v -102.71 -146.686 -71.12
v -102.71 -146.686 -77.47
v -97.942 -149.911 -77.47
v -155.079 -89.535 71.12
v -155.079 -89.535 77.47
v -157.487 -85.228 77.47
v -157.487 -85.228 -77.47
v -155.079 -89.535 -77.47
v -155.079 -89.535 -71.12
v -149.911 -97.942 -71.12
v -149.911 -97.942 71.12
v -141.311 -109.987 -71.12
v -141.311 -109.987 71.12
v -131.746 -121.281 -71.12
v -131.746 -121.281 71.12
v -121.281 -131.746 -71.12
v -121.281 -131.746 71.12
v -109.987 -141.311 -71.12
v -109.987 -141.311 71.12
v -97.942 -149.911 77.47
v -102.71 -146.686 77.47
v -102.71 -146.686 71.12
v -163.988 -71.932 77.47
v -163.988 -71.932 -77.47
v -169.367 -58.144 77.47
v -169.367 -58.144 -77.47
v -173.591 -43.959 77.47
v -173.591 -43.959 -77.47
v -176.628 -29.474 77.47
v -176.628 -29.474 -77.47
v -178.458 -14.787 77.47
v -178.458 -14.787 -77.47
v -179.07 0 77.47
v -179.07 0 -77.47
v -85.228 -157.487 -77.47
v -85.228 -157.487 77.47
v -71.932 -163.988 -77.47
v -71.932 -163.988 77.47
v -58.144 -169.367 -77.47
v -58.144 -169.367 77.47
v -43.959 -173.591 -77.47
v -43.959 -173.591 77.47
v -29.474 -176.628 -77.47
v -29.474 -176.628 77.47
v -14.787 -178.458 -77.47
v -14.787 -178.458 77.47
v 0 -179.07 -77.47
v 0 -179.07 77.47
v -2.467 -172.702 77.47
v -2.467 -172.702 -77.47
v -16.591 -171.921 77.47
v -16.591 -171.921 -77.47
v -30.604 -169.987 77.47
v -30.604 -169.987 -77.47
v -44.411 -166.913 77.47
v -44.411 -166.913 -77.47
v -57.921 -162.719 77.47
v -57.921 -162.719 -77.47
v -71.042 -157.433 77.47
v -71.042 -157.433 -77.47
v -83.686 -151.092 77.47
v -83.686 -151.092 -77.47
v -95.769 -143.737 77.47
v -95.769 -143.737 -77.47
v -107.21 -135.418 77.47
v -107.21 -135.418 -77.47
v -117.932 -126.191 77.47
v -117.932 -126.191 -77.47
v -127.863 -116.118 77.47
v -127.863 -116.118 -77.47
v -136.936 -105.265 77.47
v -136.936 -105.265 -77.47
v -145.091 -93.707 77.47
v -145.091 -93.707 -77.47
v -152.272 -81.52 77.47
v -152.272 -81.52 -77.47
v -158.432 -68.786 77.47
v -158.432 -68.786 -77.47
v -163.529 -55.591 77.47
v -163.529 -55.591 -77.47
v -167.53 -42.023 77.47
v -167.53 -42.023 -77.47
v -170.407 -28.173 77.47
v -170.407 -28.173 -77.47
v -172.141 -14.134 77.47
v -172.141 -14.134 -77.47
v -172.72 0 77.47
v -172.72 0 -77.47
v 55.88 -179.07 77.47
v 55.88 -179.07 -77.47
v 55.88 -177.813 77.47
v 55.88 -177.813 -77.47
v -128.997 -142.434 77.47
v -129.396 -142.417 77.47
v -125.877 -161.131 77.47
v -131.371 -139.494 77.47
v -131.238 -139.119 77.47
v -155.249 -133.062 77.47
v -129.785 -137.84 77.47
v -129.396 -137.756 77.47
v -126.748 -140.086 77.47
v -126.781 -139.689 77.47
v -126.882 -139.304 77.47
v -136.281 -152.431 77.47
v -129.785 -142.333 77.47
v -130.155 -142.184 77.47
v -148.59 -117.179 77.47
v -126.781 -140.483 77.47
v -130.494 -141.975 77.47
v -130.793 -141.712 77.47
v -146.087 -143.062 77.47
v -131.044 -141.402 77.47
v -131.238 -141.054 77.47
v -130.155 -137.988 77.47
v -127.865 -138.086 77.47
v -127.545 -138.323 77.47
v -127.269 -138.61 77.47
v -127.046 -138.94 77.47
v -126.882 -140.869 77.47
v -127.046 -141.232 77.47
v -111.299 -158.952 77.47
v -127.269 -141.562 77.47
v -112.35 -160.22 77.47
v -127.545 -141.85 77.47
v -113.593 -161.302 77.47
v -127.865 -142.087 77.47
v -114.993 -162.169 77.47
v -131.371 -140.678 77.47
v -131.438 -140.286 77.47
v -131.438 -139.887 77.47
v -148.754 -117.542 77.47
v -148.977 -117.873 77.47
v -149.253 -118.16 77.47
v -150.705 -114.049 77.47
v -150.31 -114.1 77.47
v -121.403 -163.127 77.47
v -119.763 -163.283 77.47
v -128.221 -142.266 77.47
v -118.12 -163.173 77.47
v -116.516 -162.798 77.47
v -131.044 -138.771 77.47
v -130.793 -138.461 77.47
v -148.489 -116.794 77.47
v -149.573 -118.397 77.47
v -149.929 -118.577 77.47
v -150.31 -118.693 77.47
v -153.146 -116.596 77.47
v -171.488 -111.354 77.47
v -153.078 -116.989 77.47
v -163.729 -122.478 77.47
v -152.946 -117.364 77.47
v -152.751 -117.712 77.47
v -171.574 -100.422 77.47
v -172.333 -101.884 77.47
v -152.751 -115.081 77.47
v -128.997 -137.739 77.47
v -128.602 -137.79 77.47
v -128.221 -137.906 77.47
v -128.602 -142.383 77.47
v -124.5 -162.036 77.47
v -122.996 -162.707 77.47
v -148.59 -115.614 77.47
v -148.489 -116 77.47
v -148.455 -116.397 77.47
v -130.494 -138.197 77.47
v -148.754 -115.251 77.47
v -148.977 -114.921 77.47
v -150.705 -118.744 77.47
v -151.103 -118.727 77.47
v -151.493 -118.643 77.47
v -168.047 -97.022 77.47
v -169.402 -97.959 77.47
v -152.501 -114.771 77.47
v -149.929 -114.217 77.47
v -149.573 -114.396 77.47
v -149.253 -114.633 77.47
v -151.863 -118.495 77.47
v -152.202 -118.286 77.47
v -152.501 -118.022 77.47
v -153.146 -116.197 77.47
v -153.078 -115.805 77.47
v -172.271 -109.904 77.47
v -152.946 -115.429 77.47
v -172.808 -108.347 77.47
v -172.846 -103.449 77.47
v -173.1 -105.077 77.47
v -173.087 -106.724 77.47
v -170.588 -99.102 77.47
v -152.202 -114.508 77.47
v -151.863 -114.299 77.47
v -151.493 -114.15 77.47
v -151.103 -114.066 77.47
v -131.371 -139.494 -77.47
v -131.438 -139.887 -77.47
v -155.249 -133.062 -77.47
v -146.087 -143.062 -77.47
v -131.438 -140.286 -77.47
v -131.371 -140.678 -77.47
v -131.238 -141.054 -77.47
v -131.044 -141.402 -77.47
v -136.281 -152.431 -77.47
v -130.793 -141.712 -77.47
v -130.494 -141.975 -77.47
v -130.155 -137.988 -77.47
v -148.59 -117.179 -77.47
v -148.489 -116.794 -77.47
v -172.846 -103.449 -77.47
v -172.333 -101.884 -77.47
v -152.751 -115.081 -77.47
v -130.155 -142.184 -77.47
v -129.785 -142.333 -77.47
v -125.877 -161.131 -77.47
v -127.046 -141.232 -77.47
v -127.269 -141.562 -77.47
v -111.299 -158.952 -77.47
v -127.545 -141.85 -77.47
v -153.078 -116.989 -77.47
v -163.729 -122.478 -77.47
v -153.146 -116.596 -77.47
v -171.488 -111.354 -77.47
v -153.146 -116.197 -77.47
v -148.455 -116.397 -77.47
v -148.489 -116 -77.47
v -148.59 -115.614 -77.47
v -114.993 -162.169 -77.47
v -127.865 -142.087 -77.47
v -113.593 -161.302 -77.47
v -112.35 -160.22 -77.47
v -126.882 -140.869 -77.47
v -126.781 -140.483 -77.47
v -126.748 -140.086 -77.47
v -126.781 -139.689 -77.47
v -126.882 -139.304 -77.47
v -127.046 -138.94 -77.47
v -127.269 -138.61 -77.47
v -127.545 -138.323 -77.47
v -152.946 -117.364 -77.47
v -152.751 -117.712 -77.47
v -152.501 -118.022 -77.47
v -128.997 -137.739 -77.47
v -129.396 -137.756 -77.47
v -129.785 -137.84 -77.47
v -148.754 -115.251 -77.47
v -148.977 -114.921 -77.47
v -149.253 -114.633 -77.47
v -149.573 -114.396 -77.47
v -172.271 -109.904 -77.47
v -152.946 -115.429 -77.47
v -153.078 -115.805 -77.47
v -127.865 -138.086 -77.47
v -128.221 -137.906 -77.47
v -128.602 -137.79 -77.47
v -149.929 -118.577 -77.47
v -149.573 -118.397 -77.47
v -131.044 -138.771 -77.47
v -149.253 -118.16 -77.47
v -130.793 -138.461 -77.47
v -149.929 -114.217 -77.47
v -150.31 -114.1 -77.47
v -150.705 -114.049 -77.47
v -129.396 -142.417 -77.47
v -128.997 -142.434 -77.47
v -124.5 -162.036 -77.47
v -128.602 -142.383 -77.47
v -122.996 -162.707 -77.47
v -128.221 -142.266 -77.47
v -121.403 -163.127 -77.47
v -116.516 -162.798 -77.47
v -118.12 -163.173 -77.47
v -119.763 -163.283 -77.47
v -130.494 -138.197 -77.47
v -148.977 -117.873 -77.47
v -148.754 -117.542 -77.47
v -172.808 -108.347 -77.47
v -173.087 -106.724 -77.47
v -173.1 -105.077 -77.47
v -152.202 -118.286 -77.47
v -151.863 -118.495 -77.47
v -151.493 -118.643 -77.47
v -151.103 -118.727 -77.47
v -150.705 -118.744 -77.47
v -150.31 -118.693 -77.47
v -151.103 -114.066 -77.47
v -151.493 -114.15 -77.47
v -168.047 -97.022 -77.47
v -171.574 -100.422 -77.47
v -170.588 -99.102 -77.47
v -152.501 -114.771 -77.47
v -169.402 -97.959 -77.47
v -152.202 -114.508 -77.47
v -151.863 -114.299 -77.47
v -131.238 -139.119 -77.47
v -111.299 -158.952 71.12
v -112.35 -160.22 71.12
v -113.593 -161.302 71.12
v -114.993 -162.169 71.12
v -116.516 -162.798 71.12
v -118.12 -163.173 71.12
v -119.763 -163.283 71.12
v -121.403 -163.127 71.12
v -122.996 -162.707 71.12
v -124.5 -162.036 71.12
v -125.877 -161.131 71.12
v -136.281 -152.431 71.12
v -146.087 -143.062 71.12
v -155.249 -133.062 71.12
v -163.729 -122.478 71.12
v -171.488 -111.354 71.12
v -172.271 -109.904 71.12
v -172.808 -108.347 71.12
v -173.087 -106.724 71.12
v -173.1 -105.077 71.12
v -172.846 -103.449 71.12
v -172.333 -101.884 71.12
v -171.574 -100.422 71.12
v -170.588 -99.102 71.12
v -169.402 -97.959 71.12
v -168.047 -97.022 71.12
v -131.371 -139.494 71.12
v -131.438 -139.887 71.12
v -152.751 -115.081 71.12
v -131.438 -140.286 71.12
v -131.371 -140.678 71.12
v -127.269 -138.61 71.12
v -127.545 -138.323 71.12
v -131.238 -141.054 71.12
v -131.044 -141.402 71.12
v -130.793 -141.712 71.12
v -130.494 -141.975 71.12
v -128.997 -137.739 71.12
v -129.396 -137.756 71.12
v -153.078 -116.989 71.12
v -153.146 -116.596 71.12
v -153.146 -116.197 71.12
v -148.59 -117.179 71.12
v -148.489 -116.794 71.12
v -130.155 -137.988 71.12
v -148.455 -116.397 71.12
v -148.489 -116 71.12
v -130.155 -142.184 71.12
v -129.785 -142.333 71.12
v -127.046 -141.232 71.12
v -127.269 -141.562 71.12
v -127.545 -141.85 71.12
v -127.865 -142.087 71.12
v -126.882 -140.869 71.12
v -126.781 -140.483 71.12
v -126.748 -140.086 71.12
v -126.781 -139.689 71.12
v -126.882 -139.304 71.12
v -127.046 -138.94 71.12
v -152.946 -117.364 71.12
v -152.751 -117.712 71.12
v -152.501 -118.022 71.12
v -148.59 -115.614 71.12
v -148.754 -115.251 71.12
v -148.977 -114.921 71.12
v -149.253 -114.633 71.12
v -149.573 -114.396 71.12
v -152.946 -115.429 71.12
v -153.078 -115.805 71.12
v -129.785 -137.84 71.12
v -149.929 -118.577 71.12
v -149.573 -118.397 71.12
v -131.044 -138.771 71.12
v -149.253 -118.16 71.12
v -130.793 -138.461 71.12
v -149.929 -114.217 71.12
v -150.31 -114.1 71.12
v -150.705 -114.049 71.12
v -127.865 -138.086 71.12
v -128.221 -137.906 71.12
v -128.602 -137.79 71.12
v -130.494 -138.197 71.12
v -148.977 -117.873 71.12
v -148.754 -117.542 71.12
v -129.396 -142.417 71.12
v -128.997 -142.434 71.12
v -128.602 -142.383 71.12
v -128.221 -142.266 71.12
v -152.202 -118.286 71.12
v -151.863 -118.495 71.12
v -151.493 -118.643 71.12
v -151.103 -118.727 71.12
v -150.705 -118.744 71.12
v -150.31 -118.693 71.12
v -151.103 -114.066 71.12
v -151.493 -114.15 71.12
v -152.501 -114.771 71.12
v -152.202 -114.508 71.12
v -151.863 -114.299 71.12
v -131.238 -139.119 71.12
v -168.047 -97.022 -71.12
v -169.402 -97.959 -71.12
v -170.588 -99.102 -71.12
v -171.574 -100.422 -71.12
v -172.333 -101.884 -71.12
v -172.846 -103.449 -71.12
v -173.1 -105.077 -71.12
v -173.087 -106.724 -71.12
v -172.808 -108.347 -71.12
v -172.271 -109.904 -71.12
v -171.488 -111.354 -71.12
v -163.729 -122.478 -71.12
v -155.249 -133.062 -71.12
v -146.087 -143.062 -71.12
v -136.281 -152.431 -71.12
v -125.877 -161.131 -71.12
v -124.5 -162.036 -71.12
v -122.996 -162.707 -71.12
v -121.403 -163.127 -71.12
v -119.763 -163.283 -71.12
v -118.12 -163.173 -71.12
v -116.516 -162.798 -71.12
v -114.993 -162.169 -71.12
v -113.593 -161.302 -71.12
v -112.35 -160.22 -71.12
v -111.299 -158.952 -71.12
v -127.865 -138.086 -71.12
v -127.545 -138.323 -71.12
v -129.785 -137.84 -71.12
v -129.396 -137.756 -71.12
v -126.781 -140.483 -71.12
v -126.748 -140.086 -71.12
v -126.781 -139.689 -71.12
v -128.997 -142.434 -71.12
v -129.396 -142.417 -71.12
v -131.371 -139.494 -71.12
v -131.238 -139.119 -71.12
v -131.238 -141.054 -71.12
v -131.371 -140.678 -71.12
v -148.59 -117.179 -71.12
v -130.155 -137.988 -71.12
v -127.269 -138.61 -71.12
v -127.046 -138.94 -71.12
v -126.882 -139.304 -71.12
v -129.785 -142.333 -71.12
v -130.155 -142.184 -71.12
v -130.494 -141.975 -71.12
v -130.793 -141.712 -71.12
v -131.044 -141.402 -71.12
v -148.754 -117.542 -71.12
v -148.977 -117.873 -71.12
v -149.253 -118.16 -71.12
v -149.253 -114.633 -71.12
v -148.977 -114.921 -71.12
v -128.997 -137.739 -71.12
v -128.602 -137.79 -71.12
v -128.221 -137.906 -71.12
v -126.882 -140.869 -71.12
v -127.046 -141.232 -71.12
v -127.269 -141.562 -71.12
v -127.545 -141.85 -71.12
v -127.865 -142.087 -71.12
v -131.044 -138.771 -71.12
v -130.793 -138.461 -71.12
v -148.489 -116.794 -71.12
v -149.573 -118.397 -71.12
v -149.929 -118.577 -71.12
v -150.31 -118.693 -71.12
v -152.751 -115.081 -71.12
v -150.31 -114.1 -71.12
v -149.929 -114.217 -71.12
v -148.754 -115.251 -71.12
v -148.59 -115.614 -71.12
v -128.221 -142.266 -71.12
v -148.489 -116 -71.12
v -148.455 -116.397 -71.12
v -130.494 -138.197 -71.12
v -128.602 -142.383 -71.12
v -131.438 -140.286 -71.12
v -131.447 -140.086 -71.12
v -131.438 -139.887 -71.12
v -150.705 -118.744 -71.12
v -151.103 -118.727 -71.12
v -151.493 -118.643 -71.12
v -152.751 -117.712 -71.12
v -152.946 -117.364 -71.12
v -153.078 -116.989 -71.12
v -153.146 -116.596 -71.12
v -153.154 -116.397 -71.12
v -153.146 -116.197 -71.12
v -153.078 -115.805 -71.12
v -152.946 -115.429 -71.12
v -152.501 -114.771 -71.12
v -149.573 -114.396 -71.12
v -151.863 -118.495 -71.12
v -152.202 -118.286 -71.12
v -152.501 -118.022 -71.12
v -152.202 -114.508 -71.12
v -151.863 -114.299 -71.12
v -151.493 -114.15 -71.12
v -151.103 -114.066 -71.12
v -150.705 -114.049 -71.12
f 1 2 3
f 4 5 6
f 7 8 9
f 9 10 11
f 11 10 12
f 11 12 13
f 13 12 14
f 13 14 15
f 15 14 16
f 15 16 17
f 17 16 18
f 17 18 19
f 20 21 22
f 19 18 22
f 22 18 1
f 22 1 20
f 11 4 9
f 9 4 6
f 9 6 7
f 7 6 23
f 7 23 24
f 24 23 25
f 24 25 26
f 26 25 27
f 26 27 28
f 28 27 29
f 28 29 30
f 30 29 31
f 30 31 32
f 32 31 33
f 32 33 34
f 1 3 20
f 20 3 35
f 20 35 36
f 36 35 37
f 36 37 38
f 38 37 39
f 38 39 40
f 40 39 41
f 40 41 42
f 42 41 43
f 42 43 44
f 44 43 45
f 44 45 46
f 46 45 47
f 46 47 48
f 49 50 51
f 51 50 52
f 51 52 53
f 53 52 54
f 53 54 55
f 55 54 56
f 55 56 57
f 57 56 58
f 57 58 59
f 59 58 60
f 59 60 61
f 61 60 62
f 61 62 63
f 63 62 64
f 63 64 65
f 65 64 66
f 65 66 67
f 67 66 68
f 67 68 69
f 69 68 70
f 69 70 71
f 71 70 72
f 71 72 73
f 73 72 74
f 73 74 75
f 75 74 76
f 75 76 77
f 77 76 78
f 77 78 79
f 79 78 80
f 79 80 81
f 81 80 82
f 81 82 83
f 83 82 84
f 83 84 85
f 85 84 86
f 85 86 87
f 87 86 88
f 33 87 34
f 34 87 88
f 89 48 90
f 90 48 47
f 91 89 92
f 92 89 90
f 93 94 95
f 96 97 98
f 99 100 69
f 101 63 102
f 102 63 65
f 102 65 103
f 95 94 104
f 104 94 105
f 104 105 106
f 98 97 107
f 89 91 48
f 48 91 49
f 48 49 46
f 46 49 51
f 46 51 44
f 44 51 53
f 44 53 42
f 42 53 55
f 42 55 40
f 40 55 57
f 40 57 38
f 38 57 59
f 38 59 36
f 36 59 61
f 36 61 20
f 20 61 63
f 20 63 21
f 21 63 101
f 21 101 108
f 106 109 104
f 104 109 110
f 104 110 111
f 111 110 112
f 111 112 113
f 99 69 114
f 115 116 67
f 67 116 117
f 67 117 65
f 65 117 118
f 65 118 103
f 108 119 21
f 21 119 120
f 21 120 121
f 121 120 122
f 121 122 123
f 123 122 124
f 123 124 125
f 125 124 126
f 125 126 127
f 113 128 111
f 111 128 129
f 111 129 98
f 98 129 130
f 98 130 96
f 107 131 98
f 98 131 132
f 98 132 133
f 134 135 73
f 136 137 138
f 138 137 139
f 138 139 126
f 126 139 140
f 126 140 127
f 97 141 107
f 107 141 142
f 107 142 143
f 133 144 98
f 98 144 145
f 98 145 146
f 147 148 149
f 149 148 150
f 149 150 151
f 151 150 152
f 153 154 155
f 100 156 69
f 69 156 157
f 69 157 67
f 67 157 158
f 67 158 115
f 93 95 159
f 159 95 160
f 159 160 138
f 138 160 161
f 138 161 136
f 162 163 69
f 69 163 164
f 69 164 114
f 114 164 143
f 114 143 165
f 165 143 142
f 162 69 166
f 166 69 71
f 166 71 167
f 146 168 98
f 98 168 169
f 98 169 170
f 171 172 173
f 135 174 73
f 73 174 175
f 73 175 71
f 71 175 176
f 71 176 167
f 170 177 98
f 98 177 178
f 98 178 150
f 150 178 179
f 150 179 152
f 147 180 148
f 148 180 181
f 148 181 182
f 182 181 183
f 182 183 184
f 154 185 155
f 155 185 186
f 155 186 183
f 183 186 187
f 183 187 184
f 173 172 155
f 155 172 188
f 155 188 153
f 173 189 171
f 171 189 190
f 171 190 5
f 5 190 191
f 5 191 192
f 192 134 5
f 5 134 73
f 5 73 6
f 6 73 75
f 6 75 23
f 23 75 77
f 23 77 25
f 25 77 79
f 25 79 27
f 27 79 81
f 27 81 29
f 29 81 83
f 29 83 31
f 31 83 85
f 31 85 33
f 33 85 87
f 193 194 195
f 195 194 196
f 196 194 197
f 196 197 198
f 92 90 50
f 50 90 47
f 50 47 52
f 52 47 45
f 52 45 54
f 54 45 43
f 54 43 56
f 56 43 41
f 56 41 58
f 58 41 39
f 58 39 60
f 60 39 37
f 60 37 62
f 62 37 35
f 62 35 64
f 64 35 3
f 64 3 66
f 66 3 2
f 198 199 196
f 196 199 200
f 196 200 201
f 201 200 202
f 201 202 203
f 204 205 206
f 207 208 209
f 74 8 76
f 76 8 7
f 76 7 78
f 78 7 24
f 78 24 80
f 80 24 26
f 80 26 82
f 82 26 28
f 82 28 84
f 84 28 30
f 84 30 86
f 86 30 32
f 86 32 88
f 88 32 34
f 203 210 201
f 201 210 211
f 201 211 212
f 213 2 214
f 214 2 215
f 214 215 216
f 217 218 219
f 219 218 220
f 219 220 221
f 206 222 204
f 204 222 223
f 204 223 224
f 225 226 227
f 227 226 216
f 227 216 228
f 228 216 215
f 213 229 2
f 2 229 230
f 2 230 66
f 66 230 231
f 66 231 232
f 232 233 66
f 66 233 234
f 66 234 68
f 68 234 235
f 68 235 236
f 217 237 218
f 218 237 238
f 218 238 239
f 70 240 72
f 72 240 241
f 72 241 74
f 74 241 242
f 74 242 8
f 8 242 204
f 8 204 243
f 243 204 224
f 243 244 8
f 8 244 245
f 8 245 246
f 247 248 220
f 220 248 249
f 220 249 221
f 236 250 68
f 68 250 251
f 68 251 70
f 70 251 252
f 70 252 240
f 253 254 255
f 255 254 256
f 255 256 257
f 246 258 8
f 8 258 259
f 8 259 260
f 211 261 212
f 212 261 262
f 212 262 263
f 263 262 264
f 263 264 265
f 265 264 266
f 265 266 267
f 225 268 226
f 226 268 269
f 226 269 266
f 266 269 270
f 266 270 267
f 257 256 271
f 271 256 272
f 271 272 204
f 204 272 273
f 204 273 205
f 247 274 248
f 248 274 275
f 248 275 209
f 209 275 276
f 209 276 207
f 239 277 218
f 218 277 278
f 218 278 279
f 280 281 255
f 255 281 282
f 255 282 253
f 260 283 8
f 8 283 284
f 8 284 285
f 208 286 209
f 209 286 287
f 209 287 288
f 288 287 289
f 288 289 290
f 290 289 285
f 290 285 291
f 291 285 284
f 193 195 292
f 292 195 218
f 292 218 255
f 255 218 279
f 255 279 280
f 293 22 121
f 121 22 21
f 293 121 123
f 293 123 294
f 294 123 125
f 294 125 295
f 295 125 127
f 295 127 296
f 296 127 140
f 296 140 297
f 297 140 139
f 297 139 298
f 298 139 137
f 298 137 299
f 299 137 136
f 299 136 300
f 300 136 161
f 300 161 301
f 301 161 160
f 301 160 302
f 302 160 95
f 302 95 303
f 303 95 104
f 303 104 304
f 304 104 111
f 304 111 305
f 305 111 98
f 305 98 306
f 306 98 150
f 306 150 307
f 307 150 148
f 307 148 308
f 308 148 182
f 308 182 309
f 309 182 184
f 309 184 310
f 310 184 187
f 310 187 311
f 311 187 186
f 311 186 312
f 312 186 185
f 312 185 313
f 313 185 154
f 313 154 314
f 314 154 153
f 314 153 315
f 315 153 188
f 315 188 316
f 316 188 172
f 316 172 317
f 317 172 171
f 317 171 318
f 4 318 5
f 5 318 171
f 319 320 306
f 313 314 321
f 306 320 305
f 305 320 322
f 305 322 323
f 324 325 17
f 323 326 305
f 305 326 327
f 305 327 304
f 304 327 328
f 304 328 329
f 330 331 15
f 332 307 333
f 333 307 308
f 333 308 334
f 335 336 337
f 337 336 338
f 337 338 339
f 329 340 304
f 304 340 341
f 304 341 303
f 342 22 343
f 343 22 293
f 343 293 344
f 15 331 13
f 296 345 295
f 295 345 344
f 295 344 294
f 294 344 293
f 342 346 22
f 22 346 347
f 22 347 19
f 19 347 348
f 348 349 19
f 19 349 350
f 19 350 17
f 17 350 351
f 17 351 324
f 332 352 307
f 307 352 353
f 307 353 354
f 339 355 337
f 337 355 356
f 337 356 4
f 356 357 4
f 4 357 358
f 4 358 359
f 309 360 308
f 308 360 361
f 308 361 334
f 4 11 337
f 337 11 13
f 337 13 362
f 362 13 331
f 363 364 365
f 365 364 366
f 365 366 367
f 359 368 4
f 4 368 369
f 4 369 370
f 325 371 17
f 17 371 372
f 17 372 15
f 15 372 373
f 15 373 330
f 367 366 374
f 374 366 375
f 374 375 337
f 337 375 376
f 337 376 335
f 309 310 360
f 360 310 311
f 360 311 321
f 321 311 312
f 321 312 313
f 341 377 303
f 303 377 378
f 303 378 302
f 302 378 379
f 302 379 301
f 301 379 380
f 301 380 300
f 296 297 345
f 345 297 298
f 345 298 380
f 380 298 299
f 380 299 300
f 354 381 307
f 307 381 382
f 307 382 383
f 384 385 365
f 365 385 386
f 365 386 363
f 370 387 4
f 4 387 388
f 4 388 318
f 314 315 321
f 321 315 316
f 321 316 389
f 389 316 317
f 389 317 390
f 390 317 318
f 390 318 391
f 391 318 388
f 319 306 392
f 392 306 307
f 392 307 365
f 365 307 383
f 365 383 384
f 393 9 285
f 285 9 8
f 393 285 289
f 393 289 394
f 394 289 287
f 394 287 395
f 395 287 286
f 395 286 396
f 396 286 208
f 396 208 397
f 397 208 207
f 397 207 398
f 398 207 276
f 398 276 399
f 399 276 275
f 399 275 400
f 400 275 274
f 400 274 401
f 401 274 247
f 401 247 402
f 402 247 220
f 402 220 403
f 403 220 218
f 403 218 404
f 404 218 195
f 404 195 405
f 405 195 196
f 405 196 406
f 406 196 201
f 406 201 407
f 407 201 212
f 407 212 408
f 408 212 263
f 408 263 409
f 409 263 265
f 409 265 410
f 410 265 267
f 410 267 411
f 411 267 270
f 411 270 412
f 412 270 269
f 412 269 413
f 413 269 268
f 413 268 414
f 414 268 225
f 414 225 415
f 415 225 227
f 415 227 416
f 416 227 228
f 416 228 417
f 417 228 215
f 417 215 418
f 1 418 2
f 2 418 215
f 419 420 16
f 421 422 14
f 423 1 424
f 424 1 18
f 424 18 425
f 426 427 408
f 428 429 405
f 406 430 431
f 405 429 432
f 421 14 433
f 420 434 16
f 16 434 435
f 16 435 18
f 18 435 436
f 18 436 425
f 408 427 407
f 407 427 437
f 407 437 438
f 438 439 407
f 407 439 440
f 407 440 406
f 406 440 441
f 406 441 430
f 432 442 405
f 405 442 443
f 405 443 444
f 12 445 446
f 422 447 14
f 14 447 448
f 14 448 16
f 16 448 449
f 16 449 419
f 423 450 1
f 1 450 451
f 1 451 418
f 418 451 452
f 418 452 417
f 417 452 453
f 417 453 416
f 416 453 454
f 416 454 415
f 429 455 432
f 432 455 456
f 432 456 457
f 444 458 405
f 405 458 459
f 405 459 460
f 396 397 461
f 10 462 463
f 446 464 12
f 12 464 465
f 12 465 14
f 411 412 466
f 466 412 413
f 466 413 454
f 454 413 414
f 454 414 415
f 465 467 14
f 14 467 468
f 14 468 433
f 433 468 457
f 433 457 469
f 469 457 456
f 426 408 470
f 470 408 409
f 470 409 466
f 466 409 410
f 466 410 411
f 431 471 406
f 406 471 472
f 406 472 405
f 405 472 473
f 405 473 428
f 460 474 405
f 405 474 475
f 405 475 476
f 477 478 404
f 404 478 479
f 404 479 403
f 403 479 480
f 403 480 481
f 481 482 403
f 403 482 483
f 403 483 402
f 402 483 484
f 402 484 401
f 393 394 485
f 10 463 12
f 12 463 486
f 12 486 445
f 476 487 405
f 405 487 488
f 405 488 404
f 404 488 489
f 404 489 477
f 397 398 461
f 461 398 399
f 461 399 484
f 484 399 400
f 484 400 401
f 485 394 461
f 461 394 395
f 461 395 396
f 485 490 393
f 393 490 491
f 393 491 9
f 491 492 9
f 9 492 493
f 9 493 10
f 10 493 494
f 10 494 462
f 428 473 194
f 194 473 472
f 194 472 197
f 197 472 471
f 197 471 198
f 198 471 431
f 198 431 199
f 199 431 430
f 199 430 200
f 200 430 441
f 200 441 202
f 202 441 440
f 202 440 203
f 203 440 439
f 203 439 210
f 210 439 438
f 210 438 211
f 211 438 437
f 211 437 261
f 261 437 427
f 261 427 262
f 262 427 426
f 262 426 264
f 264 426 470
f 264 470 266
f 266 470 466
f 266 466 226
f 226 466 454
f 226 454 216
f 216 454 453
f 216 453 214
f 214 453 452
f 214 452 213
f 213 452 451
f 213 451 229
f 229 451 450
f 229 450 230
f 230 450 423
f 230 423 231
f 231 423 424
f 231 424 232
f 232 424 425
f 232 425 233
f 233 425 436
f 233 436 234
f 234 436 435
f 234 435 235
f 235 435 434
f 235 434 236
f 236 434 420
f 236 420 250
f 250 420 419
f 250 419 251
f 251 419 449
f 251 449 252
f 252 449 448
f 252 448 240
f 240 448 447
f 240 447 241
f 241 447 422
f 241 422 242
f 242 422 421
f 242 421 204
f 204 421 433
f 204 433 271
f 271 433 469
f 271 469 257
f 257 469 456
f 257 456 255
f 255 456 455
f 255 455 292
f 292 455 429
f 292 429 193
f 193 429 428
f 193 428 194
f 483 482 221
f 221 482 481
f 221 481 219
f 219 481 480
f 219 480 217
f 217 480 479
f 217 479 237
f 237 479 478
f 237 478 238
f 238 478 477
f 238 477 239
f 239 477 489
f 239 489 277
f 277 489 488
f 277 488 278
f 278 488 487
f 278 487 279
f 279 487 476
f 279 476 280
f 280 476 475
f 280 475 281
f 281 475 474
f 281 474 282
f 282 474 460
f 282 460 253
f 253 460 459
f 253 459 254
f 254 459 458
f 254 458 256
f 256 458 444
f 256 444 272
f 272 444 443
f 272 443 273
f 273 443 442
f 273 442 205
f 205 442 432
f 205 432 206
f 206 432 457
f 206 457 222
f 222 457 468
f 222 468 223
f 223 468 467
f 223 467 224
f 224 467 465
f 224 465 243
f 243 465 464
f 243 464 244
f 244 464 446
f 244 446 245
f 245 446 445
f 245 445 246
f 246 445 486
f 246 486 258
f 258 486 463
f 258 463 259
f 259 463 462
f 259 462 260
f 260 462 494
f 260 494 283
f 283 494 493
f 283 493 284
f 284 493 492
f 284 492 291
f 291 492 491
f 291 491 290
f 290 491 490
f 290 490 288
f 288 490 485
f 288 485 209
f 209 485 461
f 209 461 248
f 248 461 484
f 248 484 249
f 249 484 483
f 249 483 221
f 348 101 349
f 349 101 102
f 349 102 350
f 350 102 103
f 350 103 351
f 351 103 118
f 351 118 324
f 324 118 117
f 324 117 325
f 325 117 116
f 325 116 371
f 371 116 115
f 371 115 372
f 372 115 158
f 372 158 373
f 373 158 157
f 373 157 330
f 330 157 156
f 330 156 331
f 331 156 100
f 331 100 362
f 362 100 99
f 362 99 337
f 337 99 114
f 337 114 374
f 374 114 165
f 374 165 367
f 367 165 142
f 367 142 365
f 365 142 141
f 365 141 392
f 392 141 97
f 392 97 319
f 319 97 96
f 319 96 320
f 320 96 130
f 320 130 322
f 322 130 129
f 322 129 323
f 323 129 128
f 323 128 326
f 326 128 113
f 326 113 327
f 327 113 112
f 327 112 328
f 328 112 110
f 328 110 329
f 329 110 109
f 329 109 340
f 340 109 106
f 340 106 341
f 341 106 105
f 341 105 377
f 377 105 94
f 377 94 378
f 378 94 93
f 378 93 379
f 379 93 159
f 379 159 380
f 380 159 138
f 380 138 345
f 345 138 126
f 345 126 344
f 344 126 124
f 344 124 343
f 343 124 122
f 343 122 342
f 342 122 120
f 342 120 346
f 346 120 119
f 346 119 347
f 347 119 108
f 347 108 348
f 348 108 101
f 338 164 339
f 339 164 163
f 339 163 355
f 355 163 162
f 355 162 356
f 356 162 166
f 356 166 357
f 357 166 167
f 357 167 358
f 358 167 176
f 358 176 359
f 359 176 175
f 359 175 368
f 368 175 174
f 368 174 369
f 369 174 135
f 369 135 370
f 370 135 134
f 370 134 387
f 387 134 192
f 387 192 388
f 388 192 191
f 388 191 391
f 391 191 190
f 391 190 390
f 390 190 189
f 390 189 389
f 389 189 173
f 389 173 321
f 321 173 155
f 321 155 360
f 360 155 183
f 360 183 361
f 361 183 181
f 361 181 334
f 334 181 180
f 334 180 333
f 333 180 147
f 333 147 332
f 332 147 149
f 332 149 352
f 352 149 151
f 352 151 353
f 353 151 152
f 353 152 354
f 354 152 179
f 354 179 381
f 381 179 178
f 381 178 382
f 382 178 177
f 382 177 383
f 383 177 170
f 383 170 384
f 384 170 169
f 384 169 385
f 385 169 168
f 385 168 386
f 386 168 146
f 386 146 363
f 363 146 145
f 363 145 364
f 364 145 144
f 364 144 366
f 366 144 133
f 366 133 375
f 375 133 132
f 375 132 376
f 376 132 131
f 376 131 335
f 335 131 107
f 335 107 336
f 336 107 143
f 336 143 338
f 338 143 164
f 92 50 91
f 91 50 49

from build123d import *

# Parameters (mm, degrees)
BOSS_EXTRUDE1_DEPTH = 77.47
BOSS_EXTRUDE2_DEPTH = 6.35
SKETCH3_R           = 2.3495
CUT_EXTRUDE2_DEPTH  = 297.881345658
CHAMFER1_START      = -172.258951726
CHAMFER1_OUTLINE_W  = 62
CHAMFER1_OUTLINE_H  = 158
CHAMFER1_DEPTH      = 6.258951726


with BuildPart() as part:
    # Sketch1 → Boss-Extrude1 (new, symmetric)
    with BuildSketch(Plane.XY):
        with BuildLine():
            Line((-179.07, 0), (-172.72, 0))
            ThreePointArc((-172.72, 0), (-122.131483247, -122.131483247), (0, -172.72))
            Line((0, -172.72), (55.88, -172.72))
            Line((55.88, -172.72), (55.88, -179.07))
            Line((55.88, -179.07), (0, -179.07))
            ThreePointArc((0, -179.07), (-126.621611307, -126.621611307), (-179.07, 0))
        make_face()
    extrude(amount=BOSS_EXTRUDE1_DEPTH, both=True)

    # Sketch2 → Boss-Extrude2 (add)
    with BuildSketch(Plane.XY.offset(77.47)):
        with BuildLine():
            Line((-155.079169056, -89.535), (-168.047204306, -97.022098643))
            ThreePointArc((-168.047204306, -97.022098643), (-172.846425248, -103.448872568), (-171.488365315, -111.354036575))
            ThreePointArc((-171.488365315, -111.354036575), (-150.751097058, -138.137929751), (-125.876496699, -161.130656546))
            ThreePointArc((-125.876496699, -161.130656546), (-118.11977695, -163.172529091), (-111.299179173, -158.951700888))
            Line((-111.299179173, -158.951700888), (-102.710332457, -146.685556571))
            ThreePointArc((-102.710332457, -146.685556571), (-132.024252703, -120.977938478), (-155.079169056, -89.535))
        make_face()
    boss_extrude2 = extrude(amount=-BOSS_EXTRUDE2_DEPTH)

    # Mirror1: Boss-Extrude2 across plane
    add(boss_extrude2.mirror(Plane.XY))

    # Sketch3 → Cut-Extrude2 (cut, through all)
    with BuildSketch(Plane.XY.offset(77.47)):
        with Locations((-150.804793508, -116.396581802)):
            Circle(SKETCH3_R)
        with Locations((-129.097161455, -140.086305199)):
            Circle(SKETCH3_R)
    extrude(amount=-CUT_EXTRUDE2_DEPTH, mode=Mode.SUBTRACT)

    # Chamfer1: read off the stored shape, not the designer's step
    # Chamfer1 outline → Chamfer1 (cut)
    with BuildSketch(Plane(origin=(0, 0, 0), x_dir=(0.996185998135626, -0.0872551266031199, 0), z_dir=(0.0872551266031199, 0.996185998135626, 0)).offset(CHAMFER1_START)):
        with Locations((42, 0)):
            Rectangle(CHAMFER1_OUTLINE_W, CHAMFER1_OUTLINE_H)
    extrude(amount=CHAMFER1_DEPTH, mode=Mode.SUBTRACT)


solid = part.part
